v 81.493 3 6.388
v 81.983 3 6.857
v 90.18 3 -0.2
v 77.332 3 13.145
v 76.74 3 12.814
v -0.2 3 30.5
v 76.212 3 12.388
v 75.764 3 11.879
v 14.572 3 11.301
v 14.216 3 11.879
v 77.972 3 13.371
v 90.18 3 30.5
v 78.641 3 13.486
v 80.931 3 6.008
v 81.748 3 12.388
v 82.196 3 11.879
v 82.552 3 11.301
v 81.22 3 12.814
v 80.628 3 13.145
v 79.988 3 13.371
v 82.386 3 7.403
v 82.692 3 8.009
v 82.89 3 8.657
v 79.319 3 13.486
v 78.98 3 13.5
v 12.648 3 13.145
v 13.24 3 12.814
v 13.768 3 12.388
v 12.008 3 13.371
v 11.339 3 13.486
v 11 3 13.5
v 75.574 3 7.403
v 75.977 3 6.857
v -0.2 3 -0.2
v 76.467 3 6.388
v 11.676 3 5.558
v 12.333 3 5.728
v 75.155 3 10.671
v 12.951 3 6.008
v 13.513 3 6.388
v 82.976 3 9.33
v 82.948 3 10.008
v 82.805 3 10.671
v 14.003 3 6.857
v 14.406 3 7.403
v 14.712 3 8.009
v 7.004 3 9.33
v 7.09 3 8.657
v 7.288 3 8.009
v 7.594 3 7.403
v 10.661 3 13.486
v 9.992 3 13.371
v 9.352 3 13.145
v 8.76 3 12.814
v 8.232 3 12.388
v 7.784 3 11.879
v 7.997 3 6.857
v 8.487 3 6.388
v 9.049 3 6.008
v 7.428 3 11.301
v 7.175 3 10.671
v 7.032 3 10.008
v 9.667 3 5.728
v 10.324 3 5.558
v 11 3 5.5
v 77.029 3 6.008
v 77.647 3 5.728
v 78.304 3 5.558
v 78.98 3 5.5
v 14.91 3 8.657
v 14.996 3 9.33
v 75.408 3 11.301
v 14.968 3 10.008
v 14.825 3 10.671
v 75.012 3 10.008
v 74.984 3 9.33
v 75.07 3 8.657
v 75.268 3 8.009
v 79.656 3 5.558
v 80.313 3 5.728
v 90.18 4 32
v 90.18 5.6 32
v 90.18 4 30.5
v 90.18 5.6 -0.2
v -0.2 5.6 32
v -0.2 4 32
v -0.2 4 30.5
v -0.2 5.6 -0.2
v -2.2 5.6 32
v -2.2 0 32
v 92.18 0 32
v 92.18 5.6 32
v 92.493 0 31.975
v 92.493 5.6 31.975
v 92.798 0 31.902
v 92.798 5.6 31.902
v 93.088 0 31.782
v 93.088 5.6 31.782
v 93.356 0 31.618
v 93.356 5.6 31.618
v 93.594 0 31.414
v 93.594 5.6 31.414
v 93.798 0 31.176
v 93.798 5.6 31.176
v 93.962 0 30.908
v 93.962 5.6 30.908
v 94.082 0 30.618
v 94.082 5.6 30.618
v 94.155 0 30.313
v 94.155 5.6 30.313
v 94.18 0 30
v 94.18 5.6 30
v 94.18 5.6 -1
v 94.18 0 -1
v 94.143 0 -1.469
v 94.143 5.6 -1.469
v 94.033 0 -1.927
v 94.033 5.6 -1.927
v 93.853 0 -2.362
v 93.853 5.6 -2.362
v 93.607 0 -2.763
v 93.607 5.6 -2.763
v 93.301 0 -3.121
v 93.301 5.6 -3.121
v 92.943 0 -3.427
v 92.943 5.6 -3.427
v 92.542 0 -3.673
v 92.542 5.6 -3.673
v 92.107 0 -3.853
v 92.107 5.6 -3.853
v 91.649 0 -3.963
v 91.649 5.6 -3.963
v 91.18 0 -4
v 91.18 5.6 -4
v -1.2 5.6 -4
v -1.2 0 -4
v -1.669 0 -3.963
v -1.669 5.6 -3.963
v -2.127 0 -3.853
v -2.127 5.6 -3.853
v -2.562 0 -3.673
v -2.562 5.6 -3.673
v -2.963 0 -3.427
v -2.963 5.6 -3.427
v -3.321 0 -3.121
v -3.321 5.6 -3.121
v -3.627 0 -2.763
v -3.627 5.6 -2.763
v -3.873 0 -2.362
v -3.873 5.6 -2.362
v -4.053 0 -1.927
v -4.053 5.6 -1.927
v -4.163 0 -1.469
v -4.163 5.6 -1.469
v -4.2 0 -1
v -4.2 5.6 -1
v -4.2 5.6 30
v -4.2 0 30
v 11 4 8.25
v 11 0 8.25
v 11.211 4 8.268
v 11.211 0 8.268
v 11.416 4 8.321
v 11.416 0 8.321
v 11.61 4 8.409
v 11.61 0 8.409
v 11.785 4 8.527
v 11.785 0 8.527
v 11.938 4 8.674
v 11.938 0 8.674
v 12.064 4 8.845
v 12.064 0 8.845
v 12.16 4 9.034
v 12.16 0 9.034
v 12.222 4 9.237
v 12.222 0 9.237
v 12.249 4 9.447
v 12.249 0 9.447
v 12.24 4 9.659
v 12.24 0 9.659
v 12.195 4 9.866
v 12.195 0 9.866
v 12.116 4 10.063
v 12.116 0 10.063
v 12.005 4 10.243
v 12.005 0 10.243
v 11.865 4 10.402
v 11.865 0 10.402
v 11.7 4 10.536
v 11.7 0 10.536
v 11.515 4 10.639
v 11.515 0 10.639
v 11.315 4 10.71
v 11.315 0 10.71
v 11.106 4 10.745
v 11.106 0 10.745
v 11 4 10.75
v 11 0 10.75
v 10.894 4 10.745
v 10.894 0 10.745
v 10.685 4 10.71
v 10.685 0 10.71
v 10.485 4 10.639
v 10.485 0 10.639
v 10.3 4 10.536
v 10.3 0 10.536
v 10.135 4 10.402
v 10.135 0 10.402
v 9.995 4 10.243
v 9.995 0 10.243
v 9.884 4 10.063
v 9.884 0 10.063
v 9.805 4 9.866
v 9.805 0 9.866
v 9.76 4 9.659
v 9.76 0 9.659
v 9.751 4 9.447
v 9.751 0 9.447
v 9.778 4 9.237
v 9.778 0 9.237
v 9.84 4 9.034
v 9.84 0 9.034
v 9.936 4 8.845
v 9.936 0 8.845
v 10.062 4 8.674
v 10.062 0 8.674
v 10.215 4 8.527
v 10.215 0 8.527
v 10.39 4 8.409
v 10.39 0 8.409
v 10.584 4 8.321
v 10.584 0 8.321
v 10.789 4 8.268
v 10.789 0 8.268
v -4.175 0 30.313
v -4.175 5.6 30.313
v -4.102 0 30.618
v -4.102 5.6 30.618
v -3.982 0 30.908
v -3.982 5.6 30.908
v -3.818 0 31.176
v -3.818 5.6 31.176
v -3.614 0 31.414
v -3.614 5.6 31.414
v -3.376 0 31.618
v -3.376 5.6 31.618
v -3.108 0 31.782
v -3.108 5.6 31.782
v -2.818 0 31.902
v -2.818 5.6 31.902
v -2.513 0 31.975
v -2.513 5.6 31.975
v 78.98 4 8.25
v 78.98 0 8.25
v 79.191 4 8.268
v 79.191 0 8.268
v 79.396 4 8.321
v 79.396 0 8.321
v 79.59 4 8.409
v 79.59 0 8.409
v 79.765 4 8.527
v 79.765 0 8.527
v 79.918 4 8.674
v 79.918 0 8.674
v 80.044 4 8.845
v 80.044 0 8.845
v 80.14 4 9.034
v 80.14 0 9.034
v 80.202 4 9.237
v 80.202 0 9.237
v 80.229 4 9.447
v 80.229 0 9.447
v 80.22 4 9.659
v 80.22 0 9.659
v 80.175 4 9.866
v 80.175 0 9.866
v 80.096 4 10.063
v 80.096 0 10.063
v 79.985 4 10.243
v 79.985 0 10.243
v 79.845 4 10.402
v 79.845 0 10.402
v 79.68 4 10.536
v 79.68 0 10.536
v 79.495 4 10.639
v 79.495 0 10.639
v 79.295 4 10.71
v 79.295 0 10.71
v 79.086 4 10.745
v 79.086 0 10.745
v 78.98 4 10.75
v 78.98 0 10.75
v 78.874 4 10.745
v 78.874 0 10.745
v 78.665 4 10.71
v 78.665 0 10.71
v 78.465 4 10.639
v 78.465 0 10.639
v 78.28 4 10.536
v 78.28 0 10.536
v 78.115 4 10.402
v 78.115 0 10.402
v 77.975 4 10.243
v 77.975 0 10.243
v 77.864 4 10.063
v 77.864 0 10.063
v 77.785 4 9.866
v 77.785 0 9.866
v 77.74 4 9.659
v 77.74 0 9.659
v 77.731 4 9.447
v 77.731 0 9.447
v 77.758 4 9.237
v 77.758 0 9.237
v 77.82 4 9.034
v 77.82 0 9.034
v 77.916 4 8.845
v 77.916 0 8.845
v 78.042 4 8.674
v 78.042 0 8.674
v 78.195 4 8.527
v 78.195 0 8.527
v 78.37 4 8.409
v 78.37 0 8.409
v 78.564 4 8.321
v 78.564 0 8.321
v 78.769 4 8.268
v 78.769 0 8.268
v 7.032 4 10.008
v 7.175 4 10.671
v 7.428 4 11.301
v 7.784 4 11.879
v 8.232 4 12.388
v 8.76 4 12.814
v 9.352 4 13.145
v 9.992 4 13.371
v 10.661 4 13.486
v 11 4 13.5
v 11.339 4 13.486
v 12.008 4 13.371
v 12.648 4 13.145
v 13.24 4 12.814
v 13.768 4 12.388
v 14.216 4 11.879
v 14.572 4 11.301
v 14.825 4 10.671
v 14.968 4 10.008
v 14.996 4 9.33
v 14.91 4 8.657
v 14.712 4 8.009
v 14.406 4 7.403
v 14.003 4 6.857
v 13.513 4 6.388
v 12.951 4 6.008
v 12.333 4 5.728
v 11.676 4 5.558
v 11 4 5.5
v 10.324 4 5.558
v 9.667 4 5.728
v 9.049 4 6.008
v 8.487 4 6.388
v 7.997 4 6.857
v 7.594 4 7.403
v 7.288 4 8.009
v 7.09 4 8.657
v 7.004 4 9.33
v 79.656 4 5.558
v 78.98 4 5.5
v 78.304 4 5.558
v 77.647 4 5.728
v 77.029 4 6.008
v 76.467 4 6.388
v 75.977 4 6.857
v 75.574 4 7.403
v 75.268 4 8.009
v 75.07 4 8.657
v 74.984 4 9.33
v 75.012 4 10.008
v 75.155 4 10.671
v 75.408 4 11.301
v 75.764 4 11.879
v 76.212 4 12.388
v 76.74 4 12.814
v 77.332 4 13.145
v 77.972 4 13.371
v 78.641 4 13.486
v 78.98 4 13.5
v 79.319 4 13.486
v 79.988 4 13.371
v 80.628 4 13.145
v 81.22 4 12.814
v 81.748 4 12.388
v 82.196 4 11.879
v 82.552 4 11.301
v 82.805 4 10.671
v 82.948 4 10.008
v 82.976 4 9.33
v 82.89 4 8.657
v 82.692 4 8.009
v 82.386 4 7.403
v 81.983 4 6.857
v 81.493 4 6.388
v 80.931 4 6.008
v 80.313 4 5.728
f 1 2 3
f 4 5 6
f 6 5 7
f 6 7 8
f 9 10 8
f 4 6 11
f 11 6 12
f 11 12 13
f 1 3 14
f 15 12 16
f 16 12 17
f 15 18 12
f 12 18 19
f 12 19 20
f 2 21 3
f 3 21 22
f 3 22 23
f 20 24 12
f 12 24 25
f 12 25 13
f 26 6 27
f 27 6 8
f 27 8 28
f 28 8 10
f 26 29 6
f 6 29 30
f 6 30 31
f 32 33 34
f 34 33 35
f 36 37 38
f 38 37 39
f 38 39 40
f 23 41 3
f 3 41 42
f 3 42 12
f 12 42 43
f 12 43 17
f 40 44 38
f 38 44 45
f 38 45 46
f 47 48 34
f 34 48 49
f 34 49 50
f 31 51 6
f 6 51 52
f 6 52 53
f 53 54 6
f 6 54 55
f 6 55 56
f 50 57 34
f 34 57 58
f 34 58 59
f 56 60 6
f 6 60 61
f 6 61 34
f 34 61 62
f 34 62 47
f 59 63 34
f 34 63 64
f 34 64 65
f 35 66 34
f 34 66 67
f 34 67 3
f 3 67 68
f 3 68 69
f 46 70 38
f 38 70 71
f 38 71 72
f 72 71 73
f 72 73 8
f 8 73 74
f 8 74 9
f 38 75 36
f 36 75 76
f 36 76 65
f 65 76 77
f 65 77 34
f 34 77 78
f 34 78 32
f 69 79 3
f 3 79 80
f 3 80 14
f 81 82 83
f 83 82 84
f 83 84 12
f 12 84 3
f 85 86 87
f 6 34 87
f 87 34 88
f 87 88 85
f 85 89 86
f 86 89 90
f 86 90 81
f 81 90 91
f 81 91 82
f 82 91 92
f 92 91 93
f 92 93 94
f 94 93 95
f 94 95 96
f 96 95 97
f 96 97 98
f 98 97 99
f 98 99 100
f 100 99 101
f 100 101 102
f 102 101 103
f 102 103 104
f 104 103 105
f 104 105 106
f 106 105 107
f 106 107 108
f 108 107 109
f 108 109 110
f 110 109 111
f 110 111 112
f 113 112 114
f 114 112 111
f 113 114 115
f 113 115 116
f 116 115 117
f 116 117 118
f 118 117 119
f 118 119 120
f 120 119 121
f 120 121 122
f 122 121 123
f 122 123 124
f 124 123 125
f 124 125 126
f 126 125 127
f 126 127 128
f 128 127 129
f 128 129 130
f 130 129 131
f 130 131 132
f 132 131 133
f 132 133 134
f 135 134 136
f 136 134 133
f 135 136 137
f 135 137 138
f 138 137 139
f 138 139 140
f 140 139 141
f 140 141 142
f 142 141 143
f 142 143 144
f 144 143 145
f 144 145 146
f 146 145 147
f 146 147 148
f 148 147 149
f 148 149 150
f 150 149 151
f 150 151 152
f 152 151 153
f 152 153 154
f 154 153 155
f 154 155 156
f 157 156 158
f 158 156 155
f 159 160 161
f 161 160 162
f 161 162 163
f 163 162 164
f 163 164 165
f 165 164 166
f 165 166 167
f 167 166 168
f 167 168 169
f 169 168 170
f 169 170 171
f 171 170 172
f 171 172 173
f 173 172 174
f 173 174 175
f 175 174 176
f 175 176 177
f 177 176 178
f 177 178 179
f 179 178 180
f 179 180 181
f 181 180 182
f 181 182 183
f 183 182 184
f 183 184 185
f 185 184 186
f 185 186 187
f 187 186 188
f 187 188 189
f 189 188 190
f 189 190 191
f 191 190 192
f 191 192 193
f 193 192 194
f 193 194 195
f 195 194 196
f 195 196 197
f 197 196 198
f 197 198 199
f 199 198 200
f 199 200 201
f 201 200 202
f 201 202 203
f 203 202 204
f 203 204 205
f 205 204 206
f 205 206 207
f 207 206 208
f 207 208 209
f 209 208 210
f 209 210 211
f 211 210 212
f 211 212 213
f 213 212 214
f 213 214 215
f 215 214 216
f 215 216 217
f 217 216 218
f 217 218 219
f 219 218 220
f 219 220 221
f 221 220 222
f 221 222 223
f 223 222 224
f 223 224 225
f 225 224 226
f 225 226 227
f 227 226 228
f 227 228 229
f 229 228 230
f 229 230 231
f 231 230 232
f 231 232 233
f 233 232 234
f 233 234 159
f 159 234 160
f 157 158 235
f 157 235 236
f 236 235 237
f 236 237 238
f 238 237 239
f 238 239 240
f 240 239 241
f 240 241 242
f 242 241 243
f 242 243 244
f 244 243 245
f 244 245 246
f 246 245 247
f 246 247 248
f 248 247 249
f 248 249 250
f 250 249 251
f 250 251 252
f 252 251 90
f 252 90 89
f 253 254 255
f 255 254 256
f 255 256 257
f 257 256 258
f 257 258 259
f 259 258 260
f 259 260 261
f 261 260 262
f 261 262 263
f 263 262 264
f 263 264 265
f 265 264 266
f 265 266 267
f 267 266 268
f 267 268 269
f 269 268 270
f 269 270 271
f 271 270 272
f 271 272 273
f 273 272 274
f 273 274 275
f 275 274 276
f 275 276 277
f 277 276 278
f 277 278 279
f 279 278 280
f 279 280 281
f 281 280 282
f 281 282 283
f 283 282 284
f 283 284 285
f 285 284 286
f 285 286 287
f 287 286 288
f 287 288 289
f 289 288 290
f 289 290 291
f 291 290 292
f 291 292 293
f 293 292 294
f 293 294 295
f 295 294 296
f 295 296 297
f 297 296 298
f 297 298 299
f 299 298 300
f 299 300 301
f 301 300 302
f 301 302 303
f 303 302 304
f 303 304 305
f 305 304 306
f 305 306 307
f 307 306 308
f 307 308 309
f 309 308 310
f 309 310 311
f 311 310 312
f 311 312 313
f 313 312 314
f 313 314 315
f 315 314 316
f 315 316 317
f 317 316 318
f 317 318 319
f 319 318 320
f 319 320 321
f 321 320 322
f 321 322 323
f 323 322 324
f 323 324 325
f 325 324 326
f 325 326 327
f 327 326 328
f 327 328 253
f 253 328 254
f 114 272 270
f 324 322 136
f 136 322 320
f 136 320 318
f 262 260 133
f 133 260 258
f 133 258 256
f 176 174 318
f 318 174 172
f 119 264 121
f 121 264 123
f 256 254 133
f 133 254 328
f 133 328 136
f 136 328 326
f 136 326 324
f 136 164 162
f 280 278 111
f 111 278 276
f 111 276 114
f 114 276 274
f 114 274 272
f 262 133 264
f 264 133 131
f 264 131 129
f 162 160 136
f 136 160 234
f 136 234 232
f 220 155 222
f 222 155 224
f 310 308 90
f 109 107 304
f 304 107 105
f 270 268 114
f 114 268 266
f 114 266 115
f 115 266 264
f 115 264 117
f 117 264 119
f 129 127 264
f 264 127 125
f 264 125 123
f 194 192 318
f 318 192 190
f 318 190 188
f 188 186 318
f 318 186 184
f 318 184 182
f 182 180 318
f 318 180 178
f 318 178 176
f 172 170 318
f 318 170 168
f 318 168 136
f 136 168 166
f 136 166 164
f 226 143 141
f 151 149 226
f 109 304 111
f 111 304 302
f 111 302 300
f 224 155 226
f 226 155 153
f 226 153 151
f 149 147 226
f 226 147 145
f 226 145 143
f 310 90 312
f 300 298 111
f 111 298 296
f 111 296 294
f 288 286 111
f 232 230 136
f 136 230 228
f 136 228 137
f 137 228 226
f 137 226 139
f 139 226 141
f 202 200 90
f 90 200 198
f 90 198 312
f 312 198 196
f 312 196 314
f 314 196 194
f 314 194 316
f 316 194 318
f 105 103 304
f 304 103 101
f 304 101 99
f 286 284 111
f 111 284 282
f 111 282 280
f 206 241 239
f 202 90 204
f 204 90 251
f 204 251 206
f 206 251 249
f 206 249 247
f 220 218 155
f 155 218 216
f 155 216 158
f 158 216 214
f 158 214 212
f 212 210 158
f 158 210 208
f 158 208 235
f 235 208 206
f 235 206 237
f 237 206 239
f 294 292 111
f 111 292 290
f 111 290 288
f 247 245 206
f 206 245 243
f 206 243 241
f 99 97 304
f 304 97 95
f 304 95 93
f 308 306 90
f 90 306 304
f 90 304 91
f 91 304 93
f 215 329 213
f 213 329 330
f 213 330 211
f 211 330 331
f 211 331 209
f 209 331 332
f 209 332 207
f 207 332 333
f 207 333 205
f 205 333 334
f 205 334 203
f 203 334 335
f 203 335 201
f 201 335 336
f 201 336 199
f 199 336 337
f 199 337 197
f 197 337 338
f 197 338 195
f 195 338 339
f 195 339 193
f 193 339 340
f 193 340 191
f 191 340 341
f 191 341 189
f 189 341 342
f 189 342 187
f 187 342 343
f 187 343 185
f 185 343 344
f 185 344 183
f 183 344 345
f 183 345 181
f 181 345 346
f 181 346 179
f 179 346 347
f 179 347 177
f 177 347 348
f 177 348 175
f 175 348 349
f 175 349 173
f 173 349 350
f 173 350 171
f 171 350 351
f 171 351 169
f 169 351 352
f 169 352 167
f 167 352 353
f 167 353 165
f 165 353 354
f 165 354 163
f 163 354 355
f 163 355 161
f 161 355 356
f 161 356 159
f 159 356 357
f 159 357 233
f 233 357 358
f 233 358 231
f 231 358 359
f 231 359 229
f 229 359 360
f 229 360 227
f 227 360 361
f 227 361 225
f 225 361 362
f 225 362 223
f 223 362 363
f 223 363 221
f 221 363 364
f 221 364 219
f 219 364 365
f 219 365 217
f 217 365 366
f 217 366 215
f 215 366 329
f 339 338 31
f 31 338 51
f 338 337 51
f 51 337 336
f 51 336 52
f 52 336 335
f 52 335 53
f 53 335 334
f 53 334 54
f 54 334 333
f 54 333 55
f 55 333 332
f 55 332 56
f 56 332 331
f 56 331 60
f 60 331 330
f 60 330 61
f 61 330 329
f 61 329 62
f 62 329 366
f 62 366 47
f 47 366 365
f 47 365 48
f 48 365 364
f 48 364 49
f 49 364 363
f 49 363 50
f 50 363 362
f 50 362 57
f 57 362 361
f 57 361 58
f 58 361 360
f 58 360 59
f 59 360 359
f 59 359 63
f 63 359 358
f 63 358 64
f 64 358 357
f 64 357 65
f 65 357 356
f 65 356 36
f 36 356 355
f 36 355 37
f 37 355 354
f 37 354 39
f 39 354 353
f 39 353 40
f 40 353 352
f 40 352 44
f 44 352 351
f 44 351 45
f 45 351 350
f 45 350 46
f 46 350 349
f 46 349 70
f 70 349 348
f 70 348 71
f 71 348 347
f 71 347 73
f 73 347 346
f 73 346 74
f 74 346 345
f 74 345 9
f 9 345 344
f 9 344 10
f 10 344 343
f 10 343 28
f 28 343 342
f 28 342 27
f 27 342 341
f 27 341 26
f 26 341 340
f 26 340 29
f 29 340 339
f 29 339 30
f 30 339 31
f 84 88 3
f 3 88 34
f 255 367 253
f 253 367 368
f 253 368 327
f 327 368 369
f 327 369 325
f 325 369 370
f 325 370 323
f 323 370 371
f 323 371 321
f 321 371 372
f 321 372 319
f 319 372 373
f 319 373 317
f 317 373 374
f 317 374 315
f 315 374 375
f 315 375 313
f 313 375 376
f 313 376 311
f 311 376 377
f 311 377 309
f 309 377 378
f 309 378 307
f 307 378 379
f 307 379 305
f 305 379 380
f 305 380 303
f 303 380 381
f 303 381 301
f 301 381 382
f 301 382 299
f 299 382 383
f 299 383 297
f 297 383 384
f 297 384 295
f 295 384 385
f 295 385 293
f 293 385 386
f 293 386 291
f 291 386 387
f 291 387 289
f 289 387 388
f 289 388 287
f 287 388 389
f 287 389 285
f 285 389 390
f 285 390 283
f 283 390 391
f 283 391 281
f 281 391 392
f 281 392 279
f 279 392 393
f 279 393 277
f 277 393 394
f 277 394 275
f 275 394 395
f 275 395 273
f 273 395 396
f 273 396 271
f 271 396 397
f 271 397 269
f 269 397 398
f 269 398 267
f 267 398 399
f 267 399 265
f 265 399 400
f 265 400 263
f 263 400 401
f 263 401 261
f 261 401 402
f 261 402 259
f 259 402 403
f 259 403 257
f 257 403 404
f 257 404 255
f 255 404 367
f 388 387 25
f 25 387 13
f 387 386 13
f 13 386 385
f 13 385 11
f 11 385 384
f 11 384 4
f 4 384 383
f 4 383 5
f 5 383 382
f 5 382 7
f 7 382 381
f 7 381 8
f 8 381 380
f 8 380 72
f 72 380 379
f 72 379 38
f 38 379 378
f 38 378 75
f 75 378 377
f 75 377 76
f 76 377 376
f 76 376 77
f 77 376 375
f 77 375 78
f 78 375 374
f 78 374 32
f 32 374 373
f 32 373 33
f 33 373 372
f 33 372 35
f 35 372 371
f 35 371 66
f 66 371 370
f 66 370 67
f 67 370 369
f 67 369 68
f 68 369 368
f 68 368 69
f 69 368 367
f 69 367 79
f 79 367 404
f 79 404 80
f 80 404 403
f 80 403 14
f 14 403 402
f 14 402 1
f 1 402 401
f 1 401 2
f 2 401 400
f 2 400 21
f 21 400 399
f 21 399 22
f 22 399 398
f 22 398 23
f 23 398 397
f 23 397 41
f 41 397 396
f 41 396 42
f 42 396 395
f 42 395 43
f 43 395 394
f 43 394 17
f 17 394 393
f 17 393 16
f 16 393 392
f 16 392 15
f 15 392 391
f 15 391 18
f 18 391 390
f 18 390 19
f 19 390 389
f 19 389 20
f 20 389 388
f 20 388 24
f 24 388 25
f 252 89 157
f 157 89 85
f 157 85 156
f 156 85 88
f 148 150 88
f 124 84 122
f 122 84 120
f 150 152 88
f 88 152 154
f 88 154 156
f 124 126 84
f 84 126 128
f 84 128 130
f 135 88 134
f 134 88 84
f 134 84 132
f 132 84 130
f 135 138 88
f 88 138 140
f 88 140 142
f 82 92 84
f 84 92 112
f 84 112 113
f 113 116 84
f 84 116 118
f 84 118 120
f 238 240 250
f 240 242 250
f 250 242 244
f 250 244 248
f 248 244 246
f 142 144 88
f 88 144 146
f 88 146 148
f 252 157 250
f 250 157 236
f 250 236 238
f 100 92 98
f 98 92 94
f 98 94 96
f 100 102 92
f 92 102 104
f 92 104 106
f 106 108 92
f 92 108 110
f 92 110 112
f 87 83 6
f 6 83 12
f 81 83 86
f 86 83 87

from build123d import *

# Parameters (mm, degrees)
SKETCH1_W           = 89.98
SKETCH1_H           = 32
SKETCH1_R           = 4
SKETCH1_R_2         = 1.25
BOSS_EXTRUDE1_DEPTH = 3
BOSS_EXTRUDE2_START = 3
SKETCH1_5_R         = 4
SKETCH1_5_R_2       = 1.25
BOSS_EXTRUDE2_DEPTH = 1
BOSS_EXTRUDE3_START = 4
BOSS_EXTRUDE3_DEPTH = 1.6
SKETCH2_W           = 90.38
SKETCH2_H           = 1.5
BOSS_EXTRUDE4_DEPTH = 1


with BuildPart() as part:
    # Sketch1 → Boss-Extrude1 (new body)
    # profile 1 of 5: a face of its own
    with BuildSketch(Plane(origin=(0, 0, 0), x_dir=(1, 0, 0), z_dir=(0, 1, 0))):
        with Locations((44.99, -16)):
            Rectangle(SKETCH1_W, SKETCH1_H)
        with Locations((78.98, -9.5)):
            Circle(SKETCH1_R, mode=Mode.SUBTRACT)
        with Locations((11, -9.5)):
            Circle(SKETCH1_R, mode=Mode.SUBTRACT)
    # profile 2 of 5: a face of its own
    with BuildSketch(Plane(origin=(0, 0, 0), x_dir=(1, 0, 0), z_dir=(0, 1, 0))):
        with Locations((11, -9.5)):
            Circle(SKETCH1_R)
        with Locations(Location((11, -9.5, 0), (0, 0, 270))):
            Circle(SKETCH1_R_2, mode=Mode.SUBTRACT)
    # profile 3 of 5: a face of its own
    with BuildSketch(Plane(origin=(0, 0, 0), x_dir=(1, 0, 0), z_dir=(0, 1, 0))):
        Polygon((90.18, -32), (89.98, -32), (89.98, 0), (0, 0), (0, -32), (-0.2, -32), (-0.2, 0.2), (90.18, 0.2), align=None)
    # profile 4 of 5: a face of its own
    with BuildSketch(Plane(origin=(0, 0, 0), x_dir=(1, 0, 0), z_dir=(0, 1, 0))):
        with BuildLine():
            ThreePointArc((-2.2, -32), (-3.614213562, -31.414213562), (-4.2, -30))
            Line((-4.2, -30), (-4.2, 1))
            ThreePointArc((-4.2, 1), (-3.321320344, 3.121320344), (-1.2, 4))
            Line((-1.2, 4), (91.18, 4))
            ThreePointArc((91.18, 4), (93.301320344, 3.121320344), (94.18, 1))
            Line((94.18, 1), (94.18, -30))
            ThreePointArc((94.18, -30), (93.594213562, -31.414213562), (92.18, -32))
            Line((92.18, -32), (90.18, -32))
            Line((90.18, -32), (90.18, 0.2))
            Line((90.18, 0.2), (-0.2, 0.2))
            Line((-0.2, 0.2), (-0.2, -32))
            Line((-0.2, -32), (-2.2, -32))
        make_face()
    # profile 5 of 5: a face of its own
    with BuildSketch(Plane(origin=(0, 0, 0), x_dir=(1, 0, 0), z_dir=(0, 1, 0))):
        with Locations((78.98, -9.5)):
            Circle(SKETCH1_R)
        with Locations(Location((78.98, -9.5, 0), (0, 0, 270))):
            Circle(SKETCH1_R_2, mode=Mode.SUBTRACT)
    extrude(amount=BOSS_EXTRUDE1_DEPTH)

    # Sketch1<5> → Boss-Extrude2 (add)
    # profile 1 of 3: a face of its own
    with BuildSketch(Plane(origin=(0, 0, 0), x_dir=(1, 0, 0), z_dir=(0, 1, 0)).offset(BOSS_EXTRUDE2_START)):
        with Locations(Location((11, -9.5, 0), (0, 0, 270))):
            Circle(SKETCH1_5_R)
        with Locations(Location((11, -9.5, 0), (0, 0, 270))):
            Circle(SKETCH1_5_R_2, mode=Mode.SUBTRACT)
    # profile 2 of 3: a face of its own
    with BuildSketch(Plane(origin=(0, 0, 0), x_dir=(1, 0, 0), z_dir=(0, 1, 0)).offset(BOSS_EXTRUDE2_START)):
        with BuildLine():
            ThreePointArc((-2.2, -32), (-3.614213562, -31.414213562), (-4.2, -30))
            Line((-4.2, -30), (-4.2, 1))
            ThreePointArc((-4.2, 1), (-3.321320344, 3.121320344), (-1.2, 4))
            Line((-1.2, 4), (91.18, 4))
            ThreePointArc((91.18, 4), (93.301320344, 3.121320344), (94.18, 1))
            Line((94.18, 1), (94.18, -30))
            ThreePointArc((94.18, -30), (93.594213562, -31.414213562), (92.18, -32))
            Line((92.18, -32), (90.18, -32))
            Line((90.18, -32), (90.18, 0.2))
            Line((90.18, 0.2), (-0.2, 0.2))
            Line((-0.2, 0.2), (-0.2, -32))
            Line((-0.2, -32), (-2.2, -32))
        make_face()
    # profile 3 of 3: a face of its own
    with BuildSketch(Plane(origin=(0, 0, 0), x_dir=(1, 0, 0), z_dir=(0, 1, 0)).offset(BOSS_EXTRUDE2_START)):
        with Locations(Location((78.98, -9.5, 0), (0, 0, 270))):
            Circle(SKETCH1_5_R)
        with Locations(Location((78.98, -9.5, 0), (0, 0, 270))):
            Circle(SKETCH1_5_R_2, mode=Mode.SUBTRACT)
    extrude(amount=BOSS_EXTRUDE2_DEPTH)

    # Sketch1<6> → Boss-Extrude3 (add)
    with BuildSketch(Plane(origin=(0, 0, 0), x_dir=(1, 0, 0), z_dir=(0, 1, 0)).offset(BOSS_EXTRUDE3_START)):
        with BuildLine():
            ThreePointArc((-2.2, -32), (-3.614213562, -31.414213562), (-4.2, -30))
            Line((-4.2, -30), (-4.2, 1))
            ThreePointArc((-4.2, 1), (-3.321320344, 3.121320344), (-1.2, 4))
            Line((-1.2, 4), (91.18, 4))
            ThreePointArc((91.18, 4), (93.301320344, 3.121320344), (94.18, 1))
            Line((94.18, 1), (94.18, -30))
            ThreePointArc((94.18, -30), (93.594213562, -31.414213562), (92.18, -32))
            Line((92.18, -32), (90.18, -32))
            Line((90.18, -32), (90.18, 0.2))
            Line((90.18, 0.2), (-0.2, 0.2))
            Line((-0.2, 0.2), (-0.2, -32))
            Line((-0.2, -32), (-2.2, -32))
        make_face()
    extrude(amount=BOSS_EXTRUDE3_DEPTH)

    # Sketch2 → Boss-Extrude4 (add)
    with BuildSketch(Plane(origin=(0, 3, 0), x_dir=(1, 0, 0), z_dir=(0, 1, 0))):
        with Locations((44.99, -31.25)):
            Rectangle(SKETCH2_W, SKETCH2_H)
    extrude(amount=BOSS_EXTRUDE4_DEPTH)


solid = part.part
